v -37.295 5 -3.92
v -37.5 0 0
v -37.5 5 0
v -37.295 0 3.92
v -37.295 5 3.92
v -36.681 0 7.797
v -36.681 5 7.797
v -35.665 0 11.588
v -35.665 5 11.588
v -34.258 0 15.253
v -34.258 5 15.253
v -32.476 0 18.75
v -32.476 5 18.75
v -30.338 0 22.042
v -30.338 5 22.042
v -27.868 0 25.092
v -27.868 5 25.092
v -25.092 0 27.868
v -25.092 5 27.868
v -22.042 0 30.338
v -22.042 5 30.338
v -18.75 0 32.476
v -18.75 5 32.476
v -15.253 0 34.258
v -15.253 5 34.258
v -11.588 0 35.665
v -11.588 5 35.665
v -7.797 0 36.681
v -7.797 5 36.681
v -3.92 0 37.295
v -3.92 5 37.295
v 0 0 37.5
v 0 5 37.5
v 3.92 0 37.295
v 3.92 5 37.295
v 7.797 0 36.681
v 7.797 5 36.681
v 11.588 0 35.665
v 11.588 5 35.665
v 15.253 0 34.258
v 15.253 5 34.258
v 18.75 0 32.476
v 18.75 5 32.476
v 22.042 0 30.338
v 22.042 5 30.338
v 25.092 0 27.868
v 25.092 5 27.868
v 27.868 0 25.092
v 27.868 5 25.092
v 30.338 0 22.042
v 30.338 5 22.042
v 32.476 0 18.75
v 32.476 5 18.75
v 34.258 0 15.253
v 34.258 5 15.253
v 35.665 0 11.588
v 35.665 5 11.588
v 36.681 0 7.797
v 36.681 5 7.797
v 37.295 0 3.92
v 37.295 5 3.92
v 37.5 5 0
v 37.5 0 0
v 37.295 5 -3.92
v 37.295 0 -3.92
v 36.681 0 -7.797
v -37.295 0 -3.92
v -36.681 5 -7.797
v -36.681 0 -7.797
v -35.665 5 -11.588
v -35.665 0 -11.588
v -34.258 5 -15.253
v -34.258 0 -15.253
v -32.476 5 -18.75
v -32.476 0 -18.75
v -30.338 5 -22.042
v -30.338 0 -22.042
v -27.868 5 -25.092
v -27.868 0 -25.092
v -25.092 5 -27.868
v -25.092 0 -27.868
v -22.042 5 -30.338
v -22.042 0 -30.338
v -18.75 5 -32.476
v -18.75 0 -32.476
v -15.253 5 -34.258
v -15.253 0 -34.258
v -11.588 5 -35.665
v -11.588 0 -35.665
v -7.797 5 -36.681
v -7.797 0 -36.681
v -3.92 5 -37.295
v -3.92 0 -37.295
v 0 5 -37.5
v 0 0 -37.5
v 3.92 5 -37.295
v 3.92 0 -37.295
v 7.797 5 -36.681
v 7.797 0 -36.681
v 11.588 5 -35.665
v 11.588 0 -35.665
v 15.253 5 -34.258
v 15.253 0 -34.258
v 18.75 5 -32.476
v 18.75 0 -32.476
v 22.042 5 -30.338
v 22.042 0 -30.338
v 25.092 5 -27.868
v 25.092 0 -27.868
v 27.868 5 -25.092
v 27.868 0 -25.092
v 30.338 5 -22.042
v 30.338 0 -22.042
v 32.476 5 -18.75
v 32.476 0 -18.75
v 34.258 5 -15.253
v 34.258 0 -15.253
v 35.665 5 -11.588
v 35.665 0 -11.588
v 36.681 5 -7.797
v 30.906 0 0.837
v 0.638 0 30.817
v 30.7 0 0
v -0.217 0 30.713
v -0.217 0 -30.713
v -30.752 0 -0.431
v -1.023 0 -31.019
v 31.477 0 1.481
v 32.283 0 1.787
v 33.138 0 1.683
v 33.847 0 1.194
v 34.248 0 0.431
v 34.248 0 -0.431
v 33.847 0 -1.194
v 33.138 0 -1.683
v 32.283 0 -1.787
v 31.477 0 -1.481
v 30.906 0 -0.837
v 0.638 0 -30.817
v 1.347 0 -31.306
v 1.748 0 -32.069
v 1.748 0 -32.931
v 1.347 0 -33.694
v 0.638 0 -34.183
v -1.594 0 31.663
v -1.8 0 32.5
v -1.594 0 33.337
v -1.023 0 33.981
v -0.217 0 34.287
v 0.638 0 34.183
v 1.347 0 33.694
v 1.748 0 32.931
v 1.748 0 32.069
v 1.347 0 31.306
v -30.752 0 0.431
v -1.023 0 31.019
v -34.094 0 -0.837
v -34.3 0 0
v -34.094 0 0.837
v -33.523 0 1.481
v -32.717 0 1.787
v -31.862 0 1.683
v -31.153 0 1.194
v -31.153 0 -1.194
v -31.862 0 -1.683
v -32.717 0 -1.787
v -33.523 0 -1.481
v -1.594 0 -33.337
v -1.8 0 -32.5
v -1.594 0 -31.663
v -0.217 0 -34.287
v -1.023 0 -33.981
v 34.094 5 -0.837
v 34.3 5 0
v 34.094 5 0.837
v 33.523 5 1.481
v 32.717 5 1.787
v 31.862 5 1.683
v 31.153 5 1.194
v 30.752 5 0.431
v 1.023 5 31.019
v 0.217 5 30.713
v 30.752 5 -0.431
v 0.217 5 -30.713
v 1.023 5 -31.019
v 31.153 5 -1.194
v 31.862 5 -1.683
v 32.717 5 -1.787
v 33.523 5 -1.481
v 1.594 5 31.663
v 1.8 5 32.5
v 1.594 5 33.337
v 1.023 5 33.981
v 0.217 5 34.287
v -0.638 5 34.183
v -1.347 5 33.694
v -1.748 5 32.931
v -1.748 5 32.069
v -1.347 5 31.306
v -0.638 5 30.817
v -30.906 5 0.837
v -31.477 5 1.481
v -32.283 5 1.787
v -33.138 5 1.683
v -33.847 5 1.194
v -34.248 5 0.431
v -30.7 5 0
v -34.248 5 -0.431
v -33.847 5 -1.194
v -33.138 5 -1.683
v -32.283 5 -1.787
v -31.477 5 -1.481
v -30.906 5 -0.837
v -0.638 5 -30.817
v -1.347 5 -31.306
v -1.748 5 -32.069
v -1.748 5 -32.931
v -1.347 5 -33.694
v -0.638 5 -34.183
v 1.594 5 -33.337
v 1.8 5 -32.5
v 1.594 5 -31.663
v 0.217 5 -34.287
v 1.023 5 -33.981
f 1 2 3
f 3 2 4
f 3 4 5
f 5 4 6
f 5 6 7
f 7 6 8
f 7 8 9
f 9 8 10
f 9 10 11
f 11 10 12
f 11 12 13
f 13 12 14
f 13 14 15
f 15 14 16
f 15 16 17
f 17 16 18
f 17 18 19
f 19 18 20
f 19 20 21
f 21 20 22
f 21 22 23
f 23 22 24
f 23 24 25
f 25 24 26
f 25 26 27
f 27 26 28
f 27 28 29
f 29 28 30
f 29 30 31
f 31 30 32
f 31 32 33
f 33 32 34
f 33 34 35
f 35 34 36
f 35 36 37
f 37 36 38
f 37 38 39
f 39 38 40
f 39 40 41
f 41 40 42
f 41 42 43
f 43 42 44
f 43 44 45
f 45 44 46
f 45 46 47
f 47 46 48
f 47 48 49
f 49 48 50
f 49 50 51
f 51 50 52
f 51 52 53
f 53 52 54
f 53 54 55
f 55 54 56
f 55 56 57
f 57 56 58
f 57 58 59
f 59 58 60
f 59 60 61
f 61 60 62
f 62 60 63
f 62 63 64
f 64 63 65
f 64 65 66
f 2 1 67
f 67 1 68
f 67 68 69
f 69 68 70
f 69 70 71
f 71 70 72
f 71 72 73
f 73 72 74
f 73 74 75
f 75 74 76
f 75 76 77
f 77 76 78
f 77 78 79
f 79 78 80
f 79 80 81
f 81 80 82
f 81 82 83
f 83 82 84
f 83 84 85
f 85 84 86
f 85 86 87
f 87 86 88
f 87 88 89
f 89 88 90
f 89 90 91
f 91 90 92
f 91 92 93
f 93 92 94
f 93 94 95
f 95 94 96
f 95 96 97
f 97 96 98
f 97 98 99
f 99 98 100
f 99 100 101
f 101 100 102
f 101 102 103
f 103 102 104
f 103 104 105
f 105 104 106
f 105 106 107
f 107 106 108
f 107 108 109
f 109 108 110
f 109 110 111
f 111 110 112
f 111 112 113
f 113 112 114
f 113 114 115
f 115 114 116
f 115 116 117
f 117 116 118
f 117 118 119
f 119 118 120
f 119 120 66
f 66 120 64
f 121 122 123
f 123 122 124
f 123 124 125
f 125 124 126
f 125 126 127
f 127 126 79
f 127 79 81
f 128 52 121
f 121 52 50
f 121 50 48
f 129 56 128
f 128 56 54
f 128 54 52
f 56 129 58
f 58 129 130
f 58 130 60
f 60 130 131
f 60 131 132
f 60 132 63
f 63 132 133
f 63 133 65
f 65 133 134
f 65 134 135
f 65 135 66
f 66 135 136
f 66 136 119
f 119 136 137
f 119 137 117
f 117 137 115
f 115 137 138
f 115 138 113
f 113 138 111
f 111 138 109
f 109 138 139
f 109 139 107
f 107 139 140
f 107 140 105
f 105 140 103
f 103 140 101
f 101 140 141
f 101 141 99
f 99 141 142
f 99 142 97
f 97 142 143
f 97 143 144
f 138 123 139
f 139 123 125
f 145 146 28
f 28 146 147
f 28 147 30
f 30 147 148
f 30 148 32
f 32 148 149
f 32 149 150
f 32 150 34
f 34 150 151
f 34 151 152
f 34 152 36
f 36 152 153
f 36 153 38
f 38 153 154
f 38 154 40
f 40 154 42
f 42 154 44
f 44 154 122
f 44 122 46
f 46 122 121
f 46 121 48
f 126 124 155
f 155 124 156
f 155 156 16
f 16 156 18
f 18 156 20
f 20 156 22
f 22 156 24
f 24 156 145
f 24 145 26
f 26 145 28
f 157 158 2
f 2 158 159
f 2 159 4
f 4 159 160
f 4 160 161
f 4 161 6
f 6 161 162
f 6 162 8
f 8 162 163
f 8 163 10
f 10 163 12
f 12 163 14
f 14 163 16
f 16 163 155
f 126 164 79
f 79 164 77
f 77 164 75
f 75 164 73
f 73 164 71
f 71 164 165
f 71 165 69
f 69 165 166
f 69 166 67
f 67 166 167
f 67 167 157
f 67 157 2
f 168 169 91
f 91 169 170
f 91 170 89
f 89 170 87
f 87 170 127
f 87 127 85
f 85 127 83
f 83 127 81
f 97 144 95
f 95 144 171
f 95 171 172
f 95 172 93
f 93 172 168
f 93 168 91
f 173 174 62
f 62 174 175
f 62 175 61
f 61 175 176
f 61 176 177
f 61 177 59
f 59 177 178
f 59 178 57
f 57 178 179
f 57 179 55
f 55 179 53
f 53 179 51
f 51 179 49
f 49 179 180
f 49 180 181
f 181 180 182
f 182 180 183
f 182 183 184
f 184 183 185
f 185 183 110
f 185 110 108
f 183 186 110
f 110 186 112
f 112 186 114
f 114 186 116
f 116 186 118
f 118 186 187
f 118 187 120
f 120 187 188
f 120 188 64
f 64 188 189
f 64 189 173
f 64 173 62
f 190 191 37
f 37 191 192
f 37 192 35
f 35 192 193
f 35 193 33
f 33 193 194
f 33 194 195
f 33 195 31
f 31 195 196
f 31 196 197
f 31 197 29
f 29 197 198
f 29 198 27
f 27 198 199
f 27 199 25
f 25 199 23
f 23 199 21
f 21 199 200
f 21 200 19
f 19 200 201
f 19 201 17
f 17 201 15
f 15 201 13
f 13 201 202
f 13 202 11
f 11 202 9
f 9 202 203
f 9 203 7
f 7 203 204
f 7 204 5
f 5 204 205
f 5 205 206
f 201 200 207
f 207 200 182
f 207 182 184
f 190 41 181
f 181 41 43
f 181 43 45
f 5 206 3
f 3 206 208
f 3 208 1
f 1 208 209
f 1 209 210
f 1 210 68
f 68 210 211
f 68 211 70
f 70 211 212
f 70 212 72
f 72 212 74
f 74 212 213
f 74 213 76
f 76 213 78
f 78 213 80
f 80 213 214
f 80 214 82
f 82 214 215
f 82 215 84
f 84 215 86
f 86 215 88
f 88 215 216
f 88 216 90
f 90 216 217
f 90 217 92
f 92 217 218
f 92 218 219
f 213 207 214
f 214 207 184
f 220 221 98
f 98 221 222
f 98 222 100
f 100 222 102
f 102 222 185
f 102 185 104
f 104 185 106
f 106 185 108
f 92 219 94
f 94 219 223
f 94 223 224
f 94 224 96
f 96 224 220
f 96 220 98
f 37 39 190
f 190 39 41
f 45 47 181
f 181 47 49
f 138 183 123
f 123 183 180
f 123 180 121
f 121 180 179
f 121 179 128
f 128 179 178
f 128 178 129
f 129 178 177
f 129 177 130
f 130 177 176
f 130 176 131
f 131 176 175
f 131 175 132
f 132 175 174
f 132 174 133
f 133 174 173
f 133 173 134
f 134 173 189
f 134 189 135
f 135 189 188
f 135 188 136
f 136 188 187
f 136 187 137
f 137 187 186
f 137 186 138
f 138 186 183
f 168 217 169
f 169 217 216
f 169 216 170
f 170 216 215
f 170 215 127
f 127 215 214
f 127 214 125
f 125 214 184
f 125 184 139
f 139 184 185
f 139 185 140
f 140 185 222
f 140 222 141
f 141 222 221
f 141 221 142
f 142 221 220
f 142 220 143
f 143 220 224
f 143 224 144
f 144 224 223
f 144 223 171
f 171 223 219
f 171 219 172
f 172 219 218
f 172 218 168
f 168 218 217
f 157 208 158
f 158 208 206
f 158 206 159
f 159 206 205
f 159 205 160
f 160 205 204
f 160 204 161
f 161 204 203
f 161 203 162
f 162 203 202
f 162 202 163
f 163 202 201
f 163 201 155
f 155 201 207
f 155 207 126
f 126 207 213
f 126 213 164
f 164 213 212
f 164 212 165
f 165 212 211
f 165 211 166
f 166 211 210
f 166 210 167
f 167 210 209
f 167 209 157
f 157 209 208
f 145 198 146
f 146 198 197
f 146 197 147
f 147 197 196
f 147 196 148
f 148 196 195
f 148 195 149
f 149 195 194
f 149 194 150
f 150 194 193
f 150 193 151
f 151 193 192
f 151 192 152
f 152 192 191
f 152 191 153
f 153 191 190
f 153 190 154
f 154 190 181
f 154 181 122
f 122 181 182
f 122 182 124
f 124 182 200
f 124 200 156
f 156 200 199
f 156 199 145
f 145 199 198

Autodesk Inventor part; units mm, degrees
ref_plane "YZ Plane" through (0, 0, 0) normal (1, 0, 0) x (0, 1, 0)
ref_plane "XZ Plane" through (0, 0, 0) normal (0, 1, 0) x (-1, 0, 0)
ref_plane "XY Plane" through (0, 0, 0) normal (0, 0, 1) x (1, 0, 0)
sketch "Sketch1" plane through (0, 0, 0) normal (0, 1, 0) x (-1, 0, 0)
  circle A0 centre (0, 0) radius 37.5
  dimension "d0" = 75
extrude "Extrusion1" add sketch "Sketch1" along normal blind 5
sketch "Sketch3" plane through (0, 5, 0) normal (0, 1, 0) x (1, 0, 0)
  circle A0 centre (0, 0) radius 37.5 projected
  line L0 (0, 32.5) -> (0, 37.5)
  line L1 (-32.5, 0) -> (-37.5, 0)
  line L2 (0, -32.5) -> (0, -37.5)
  line L3 (32.5, 0) -> (37.5, 0)
  dimension "d6" = 360
  dimension "d10" = 360
  dimension "d12" = 5
hole "Hole2" at (0, 5, -32.5) at (-32.5, 5, 0) at (0, 5, 32.5) at (32.5, 5, 0) direction (0, -1, 0) diameter 3.6 end through all
properties part number "podstava"
